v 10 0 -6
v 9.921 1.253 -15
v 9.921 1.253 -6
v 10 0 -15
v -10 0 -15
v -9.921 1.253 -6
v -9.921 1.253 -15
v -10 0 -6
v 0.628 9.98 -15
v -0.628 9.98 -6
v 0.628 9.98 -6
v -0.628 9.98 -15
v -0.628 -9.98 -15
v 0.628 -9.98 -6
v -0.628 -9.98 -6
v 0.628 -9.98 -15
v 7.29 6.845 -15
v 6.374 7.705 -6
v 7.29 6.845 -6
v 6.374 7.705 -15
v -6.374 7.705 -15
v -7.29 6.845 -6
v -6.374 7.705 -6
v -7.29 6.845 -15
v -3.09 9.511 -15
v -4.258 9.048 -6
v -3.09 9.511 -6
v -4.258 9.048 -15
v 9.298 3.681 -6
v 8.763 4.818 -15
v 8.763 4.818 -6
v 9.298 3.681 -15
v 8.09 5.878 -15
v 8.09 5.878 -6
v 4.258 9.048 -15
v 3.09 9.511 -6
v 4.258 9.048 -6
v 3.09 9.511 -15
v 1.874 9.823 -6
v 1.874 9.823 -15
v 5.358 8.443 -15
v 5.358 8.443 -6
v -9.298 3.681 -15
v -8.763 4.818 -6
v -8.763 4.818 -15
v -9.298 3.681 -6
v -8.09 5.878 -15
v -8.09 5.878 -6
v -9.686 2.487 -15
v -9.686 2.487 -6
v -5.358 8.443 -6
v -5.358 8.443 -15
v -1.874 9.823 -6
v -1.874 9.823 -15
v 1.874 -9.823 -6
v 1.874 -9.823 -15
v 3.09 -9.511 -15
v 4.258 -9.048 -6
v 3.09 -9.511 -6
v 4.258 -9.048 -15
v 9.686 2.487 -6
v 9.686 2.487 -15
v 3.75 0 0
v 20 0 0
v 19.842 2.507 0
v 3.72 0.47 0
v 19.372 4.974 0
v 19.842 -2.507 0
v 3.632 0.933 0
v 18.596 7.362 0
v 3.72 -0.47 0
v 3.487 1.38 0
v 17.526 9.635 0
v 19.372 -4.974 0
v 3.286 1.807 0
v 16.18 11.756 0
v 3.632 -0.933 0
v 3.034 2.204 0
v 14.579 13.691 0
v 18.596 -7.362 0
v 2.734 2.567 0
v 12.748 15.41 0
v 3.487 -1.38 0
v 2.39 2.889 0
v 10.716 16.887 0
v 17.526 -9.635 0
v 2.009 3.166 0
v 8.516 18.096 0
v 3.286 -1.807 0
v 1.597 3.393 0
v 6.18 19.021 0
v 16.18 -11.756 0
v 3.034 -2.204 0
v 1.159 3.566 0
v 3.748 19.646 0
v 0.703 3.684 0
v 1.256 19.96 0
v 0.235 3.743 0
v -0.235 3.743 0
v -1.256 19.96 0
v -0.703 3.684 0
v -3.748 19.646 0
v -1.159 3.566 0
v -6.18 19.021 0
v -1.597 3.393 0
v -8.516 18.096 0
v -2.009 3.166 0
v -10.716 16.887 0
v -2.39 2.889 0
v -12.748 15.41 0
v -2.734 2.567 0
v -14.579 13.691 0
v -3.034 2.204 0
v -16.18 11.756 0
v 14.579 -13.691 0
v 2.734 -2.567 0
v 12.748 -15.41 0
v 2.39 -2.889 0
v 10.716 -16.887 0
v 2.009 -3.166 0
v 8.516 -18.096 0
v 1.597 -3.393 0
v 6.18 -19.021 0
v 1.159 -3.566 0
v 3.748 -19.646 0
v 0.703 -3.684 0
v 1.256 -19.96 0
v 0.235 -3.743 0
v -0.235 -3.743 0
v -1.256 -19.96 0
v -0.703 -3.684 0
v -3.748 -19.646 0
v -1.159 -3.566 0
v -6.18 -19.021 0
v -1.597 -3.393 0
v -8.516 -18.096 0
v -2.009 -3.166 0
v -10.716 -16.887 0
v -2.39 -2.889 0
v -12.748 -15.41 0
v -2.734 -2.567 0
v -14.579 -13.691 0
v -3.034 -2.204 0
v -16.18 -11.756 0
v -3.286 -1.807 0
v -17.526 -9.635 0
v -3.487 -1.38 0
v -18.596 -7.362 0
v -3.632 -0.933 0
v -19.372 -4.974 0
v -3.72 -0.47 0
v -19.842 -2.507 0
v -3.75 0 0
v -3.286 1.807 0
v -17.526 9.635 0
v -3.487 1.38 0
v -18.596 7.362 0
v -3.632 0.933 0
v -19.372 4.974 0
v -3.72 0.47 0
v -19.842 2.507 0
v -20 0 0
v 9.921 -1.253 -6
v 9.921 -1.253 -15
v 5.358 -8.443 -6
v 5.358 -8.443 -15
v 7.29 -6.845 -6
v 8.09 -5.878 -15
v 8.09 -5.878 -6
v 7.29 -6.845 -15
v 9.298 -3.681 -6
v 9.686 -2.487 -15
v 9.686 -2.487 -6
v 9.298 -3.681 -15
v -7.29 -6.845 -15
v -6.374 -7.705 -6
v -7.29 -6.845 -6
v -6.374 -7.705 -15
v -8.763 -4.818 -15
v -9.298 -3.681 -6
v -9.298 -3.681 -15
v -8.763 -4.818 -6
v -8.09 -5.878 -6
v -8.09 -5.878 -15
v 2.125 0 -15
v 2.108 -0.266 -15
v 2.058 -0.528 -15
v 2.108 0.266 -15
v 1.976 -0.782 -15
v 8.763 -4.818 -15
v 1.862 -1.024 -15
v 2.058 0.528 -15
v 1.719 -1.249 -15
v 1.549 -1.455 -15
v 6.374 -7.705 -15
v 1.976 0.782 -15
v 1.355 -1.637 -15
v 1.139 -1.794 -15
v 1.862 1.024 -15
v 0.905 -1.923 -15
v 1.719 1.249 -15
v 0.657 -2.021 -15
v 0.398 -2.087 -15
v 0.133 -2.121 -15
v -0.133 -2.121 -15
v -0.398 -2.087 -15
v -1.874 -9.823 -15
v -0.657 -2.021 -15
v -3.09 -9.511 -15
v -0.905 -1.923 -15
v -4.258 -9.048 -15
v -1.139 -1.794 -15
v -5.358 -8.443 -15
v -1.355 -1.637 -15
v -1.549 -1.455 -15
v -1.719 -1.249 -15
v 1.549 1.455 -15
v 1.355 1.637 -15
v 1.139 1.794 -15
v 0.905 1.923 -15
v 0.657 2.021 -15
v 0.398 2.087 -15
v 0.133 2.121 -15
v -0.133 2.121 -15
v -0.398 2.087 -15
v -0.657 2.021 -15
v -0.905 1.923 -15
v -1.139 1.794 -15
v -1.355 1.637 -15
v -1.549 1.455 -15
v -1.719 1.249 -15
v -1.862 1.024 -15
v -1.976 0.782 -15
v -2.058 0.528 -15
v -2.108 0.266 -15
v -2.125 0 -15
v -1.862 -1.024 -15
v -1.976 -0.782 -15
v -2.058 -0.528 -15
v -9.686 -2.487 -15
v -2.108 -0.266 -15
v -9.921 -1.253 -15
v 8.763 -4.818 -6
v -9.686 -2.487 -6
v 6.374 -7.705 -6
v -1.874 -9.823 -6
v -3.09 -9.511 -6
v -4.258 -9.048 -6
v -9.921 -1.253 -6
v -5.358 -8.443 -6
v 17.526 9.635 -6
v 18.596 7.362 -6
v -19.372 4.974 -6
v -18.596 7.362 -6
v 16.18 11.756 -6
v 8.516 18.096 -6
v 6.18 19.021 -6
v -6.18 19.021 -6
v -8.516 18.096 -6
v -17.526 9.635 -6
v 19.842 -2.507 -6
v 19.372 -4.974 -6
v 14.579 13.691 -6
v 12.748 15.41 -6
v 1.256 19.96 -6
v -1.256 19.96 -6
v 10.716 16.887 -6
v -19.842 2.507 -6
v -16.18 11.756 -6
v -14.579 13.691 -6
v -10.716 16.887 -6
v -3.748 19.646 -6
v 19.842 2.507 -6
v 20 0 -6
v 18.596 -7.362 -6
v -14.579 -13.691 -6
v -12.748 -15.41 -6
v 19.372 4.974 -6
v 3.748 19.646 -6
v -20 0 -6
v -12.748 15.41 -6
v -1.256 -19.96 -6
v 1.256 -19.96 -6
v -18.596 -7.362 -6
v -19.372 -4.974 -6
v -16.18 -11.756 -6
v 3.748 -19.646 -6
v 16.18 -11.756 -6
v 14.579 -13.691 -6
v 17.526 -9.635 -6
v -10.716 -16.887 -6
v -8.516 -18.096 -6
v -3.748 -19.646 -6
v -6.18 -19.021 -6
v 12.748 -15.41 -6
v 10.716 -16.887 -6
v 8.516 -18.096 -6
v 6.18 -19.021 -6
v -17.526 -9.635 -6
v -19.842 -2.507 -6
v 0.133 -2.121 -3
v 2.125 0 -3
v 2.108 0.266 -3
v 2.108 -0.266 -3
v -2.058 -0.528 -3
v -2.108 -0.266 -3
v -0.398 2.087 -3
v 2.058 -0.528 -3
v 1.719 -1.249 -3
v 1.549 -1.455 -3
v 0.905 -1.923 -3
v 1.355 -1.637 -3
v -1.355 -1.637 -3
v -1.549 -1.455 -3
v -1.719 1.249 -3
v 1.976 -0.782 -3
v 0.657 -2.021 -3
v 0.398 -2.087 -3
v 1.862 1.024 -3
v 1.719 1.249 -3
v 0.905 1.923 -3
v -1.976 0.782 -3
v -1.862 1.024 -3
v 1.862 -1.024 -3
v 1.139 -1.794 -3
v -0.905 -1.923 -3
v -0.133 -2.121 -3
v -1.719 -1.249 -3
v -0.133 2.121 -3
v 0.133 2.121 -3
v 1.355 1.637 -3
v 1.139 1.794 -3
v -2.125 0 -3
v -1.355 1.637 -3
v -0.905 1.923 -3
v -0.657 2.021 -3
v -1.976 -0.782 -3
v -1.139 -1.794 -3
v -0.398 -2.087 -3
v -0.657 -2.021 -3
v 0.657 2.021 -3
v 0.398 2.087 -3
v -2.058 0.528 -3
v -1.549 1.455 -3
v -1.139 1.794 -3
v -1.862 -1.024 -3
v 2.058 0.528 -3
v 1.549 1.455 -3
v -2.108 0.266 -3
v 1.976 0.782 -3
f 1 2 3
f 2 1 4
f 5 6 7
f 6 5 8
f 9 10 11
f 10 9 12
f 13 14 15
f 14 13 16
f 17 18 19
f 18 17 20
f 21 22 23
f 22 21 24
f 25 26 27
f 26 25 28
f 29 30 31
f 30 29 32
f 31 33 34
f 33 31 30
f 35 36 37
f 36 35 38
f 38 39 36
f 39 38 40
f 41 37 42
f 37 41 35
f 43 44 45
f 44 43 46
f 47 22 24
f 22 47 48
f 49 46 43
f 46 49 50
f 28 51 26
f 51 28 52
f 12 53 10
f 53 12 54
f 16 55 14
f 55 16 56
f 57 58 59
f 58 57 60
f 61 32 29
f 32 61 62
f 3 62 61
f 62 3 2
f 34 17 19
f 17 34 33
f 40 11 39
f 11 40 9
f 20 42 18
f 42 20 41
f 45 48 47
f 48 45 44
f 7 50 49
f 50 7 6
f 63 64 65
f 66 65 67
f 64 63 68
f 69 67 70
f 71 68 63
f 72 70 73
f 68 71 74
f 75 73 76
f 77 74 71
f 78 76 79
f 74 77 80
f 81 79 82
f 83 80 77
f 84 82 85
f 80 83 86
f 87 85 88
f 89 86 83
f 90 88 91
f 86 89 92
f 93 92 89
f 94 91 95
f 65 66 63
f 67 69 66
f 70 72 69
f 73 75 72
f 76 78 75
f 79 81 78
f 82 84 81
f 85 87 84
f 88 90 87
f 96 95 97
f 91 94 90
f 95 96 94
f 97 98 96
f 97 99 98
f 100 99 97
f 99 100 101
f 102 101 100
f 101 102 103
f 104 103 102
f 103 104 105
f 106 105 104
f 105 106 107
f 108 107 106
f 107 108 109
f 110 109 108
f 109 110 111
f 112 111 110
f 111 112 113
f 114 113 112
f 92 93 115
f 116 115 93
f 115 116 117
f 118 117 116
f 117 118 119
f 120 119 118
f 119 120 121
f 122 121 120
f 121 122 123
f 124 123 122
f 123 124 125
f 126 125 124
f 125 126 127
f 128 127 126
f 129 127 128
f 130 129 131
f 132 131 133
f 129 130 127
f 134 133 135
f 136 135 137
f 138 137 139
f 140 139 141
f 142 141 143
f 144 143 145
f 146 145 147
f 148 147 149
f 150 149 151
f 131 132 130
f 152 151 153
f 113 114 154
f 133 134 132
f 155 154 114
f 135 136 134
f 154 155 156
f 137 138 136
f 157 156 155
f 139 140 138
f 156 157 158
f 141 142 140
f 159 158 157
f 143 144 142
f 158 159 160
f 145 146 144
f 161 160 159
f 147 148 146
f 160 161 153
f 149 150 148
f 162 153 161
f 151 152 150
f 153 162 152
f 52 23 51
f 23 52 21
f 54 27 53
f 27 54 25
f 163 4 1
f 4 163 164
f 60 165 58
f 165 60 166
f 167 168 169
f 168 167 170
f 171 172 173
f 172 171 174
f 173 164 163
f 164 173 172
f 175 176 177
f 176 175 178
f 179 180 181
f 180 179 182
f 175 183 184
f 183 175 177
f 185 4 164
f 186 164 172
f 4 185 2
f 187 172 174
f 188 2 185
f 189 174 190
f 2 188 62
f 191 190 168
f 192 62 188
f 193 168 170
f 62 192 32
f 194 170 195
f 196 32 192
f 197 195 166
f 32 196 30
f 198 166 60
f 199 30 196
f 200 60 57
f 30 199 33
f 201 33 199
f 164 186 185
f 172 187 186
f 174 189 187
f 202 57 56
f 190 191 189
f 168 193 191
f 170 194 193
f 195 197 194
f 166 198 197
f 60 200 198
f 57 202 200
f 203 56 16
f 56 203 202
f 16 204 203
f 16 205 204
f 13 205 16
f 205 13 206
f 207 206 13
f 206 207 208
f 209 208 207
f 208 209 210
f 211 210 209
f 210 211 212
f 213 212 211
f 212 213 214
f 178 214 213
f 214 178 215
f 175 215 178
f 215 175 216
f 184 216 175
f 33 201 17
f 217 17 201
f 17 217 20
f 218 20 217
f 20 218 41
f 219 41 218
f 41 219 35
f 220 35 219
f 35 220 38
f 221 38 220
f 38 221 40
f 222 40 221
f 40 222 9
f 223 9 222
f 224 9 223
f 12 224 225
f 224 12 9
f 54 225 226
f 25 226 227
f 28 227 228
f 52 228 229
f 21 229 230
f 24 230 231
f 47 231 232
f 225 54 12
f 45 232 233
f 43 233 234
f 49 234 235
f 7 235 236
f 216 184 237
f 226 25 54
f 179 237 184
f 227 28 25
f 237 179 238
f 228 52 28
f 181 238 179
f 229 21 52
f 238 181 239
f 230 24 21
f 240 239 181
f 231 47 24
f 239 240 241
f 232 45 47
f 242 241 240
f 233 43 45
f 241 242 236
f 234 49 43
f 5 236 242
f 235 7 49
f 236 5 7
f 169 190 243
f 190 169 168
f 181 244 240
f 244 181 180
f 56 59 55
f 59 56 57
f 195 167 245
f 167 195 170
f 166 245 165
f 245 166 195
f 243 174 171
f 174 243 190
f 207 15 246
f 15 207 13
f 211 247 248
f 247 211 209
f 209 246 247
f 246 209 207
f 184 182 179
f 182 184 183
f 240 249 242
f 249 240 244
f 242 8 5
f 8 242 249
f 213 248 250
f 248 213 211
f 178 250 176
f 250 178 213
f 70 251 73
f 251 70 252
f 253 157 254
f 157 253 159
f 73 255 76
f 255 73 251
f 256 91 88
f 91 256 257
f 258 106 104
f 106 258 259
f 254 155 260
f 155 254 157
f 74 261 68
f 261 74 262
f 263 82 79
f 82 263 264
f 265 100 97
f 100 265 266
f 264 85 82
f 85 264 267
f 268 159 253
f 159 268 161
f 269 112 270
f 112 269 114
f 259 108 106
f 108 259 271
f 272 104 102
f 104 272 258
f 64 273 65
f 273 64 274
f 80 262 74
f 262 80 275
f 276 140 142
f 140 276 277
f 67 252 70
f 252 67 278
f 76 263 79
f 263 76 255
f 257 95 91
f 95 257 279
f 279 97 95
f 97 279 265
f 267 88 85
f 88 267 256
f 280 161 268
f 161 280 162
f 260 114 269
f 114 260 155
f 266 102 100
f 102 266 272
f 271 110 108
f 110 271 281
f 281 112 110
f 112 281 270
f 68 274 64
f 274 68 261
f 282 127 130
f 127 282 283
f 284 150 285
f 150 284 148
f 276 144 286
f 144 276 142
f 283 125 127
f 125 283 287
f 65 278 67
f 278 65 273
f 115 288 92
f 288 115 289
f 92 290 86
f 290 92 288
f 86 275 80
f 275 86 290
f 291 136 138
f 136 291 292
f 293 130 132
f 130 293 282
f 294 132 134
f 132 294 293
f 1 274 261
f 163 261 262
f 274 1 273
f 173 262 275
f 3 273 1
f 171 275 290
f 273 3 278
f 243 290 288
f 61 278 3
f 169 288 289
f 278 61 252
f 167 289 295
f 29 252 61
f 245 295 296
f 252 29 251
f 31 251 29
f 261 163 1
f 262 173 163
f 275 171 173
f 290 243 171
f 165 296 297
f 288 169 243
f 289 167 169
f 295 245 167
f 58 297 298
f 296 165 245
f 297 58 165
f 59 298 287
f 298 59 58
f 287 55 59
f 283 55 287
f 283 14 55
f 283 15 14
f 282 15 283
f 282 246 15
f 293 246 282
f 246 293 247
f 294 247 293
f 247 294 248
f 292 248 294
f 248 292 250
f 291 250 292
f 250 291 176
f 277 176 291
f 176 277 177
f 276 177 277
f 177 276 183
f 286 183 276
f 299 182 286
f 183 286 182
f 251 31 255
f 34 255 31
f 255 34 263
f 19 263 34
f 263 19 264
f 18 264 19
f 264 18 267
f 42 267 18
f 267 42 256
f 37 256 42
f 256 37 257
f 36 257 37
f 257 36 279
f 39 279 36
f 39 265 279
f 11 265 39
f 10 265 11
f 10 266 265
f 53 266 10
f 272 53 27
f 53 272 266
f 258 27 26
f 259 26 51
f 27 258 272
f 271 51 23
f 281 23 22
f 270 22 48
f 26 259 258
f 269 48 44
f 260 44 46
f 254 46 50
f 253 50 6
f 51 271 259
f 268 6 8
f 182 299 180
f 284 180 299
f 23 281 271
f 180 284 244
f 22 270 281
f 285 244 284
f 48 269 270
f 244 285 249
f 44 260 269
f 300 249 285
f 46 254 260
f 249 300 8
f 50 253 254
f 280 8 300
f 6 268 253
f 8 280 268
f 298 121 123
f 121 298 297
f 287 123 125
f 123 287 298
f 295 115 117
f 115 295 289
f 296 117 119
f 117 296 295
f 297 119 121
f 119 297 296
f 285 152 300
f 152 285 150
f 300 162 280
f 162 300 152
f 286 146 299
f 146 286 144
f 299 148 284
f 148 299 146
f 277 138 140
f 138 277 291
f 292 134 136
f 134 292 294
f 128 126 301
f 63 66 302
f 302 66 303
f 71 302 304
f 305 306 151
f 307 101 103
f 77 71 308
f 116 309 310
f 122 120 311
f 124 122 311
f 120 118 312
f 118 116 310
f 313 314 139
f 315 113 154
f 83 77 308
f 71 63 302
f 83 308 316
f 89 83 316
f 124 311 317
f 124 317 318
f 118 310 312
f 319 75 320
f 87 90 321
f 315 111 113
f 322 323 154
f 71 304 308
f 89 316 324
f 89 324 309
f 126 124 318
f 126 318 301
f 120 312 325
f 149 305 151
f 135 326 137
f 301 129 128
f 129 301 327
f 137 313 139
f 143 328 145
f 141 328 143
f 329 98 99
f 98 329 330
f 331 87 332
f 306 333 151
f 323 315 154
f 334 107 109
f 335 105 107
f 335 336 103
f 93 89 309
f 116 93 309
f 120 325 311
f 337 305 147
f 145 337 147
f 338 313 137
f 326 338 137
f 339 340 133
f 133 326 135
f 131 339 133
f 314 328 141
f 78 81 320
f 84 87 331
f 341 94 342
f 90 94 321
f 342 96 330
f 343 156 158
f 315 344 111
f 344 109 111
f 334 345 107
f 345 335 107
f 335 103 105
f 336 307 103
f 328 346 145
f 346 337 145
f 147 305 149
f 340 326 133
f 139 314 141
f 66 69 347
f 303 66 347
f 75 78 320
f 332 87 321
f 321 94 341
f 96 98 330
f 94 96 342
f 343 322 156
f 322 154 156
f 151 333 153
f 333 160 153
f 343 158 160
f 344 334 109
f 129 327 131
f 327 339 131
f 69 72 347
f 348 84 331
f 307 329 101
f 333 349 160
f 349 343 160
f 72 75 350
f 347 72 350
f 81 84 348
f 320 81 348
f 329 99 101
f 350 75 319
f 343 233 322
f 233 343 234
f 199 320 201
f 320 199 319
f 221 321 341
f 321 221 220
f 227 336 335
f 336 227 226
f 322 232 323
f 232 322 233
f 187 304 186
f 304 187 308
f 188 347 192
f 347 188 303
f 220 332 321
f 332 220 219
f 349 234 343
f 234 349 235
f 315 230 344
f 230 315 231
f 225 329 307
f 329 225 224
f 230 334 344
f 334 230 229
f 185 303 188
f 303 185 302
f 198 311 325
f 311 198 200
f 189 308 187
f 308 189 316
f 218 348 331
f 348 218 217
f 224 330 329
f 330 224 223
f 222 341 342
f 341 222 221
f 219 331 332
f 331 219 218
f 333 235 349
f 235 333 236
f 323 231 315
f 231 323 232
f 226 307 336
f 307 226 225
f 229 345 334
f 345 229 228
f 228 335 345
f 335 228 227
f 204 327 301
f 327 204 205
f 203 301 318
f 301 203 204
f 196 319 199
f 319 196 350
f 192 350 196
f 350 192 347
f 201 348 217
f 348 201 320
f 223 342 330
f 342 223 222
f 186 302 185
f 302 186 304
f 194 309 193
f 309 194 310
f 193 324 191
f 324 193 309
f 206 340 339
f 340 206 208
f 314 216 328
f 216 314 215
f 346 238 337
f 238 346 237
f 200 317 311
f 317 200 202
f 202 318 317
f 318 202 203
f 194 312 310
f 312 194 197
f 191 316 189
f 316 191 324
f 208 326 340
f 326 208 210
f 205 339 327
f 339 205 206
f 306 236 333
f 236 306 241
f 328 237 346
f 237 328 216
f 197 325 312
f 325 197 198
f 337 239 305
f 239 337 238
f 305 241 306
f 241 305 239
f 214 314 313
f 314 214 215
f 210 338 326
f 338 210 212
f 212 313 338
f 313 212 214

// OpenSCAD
$fn = 50;


difference() {
	union() {
		translate(v = [0, 0, -15.0000000000]) {
			cylinder(h = 15, r = 10.0000000000);
		}
		translate(v = [0, 0, -6.0000000000]) {
			cylinder(h = 6, r = 20.0000000000);
		}
	}
	union() {
		translate(v = [0, 0, 0]) {
			rotate(a = [0, 0, 0]) {
				difference() {
					union() {
						#translate(v = [0, 0, -15.0000000000]) {
							cylinder(h = 15, r = 2.0000000000);
						}
						#translate(v = [0, 0, -3]) {
							cylinder(h = 3, r1 = 2.1250000000, r2 = 3.7500000000);
						}
						#translate(v = [0, 0, -15.0000000000]) {
							cylinder(h = 15, r = 2.1250000000);
						}
						#translate(v = [0, 0, -15.0000000000]) {
							cylinder(h = 15, r = 2.0000000000);
						}
					}
					union();
				}
			}
		}
	}
}
